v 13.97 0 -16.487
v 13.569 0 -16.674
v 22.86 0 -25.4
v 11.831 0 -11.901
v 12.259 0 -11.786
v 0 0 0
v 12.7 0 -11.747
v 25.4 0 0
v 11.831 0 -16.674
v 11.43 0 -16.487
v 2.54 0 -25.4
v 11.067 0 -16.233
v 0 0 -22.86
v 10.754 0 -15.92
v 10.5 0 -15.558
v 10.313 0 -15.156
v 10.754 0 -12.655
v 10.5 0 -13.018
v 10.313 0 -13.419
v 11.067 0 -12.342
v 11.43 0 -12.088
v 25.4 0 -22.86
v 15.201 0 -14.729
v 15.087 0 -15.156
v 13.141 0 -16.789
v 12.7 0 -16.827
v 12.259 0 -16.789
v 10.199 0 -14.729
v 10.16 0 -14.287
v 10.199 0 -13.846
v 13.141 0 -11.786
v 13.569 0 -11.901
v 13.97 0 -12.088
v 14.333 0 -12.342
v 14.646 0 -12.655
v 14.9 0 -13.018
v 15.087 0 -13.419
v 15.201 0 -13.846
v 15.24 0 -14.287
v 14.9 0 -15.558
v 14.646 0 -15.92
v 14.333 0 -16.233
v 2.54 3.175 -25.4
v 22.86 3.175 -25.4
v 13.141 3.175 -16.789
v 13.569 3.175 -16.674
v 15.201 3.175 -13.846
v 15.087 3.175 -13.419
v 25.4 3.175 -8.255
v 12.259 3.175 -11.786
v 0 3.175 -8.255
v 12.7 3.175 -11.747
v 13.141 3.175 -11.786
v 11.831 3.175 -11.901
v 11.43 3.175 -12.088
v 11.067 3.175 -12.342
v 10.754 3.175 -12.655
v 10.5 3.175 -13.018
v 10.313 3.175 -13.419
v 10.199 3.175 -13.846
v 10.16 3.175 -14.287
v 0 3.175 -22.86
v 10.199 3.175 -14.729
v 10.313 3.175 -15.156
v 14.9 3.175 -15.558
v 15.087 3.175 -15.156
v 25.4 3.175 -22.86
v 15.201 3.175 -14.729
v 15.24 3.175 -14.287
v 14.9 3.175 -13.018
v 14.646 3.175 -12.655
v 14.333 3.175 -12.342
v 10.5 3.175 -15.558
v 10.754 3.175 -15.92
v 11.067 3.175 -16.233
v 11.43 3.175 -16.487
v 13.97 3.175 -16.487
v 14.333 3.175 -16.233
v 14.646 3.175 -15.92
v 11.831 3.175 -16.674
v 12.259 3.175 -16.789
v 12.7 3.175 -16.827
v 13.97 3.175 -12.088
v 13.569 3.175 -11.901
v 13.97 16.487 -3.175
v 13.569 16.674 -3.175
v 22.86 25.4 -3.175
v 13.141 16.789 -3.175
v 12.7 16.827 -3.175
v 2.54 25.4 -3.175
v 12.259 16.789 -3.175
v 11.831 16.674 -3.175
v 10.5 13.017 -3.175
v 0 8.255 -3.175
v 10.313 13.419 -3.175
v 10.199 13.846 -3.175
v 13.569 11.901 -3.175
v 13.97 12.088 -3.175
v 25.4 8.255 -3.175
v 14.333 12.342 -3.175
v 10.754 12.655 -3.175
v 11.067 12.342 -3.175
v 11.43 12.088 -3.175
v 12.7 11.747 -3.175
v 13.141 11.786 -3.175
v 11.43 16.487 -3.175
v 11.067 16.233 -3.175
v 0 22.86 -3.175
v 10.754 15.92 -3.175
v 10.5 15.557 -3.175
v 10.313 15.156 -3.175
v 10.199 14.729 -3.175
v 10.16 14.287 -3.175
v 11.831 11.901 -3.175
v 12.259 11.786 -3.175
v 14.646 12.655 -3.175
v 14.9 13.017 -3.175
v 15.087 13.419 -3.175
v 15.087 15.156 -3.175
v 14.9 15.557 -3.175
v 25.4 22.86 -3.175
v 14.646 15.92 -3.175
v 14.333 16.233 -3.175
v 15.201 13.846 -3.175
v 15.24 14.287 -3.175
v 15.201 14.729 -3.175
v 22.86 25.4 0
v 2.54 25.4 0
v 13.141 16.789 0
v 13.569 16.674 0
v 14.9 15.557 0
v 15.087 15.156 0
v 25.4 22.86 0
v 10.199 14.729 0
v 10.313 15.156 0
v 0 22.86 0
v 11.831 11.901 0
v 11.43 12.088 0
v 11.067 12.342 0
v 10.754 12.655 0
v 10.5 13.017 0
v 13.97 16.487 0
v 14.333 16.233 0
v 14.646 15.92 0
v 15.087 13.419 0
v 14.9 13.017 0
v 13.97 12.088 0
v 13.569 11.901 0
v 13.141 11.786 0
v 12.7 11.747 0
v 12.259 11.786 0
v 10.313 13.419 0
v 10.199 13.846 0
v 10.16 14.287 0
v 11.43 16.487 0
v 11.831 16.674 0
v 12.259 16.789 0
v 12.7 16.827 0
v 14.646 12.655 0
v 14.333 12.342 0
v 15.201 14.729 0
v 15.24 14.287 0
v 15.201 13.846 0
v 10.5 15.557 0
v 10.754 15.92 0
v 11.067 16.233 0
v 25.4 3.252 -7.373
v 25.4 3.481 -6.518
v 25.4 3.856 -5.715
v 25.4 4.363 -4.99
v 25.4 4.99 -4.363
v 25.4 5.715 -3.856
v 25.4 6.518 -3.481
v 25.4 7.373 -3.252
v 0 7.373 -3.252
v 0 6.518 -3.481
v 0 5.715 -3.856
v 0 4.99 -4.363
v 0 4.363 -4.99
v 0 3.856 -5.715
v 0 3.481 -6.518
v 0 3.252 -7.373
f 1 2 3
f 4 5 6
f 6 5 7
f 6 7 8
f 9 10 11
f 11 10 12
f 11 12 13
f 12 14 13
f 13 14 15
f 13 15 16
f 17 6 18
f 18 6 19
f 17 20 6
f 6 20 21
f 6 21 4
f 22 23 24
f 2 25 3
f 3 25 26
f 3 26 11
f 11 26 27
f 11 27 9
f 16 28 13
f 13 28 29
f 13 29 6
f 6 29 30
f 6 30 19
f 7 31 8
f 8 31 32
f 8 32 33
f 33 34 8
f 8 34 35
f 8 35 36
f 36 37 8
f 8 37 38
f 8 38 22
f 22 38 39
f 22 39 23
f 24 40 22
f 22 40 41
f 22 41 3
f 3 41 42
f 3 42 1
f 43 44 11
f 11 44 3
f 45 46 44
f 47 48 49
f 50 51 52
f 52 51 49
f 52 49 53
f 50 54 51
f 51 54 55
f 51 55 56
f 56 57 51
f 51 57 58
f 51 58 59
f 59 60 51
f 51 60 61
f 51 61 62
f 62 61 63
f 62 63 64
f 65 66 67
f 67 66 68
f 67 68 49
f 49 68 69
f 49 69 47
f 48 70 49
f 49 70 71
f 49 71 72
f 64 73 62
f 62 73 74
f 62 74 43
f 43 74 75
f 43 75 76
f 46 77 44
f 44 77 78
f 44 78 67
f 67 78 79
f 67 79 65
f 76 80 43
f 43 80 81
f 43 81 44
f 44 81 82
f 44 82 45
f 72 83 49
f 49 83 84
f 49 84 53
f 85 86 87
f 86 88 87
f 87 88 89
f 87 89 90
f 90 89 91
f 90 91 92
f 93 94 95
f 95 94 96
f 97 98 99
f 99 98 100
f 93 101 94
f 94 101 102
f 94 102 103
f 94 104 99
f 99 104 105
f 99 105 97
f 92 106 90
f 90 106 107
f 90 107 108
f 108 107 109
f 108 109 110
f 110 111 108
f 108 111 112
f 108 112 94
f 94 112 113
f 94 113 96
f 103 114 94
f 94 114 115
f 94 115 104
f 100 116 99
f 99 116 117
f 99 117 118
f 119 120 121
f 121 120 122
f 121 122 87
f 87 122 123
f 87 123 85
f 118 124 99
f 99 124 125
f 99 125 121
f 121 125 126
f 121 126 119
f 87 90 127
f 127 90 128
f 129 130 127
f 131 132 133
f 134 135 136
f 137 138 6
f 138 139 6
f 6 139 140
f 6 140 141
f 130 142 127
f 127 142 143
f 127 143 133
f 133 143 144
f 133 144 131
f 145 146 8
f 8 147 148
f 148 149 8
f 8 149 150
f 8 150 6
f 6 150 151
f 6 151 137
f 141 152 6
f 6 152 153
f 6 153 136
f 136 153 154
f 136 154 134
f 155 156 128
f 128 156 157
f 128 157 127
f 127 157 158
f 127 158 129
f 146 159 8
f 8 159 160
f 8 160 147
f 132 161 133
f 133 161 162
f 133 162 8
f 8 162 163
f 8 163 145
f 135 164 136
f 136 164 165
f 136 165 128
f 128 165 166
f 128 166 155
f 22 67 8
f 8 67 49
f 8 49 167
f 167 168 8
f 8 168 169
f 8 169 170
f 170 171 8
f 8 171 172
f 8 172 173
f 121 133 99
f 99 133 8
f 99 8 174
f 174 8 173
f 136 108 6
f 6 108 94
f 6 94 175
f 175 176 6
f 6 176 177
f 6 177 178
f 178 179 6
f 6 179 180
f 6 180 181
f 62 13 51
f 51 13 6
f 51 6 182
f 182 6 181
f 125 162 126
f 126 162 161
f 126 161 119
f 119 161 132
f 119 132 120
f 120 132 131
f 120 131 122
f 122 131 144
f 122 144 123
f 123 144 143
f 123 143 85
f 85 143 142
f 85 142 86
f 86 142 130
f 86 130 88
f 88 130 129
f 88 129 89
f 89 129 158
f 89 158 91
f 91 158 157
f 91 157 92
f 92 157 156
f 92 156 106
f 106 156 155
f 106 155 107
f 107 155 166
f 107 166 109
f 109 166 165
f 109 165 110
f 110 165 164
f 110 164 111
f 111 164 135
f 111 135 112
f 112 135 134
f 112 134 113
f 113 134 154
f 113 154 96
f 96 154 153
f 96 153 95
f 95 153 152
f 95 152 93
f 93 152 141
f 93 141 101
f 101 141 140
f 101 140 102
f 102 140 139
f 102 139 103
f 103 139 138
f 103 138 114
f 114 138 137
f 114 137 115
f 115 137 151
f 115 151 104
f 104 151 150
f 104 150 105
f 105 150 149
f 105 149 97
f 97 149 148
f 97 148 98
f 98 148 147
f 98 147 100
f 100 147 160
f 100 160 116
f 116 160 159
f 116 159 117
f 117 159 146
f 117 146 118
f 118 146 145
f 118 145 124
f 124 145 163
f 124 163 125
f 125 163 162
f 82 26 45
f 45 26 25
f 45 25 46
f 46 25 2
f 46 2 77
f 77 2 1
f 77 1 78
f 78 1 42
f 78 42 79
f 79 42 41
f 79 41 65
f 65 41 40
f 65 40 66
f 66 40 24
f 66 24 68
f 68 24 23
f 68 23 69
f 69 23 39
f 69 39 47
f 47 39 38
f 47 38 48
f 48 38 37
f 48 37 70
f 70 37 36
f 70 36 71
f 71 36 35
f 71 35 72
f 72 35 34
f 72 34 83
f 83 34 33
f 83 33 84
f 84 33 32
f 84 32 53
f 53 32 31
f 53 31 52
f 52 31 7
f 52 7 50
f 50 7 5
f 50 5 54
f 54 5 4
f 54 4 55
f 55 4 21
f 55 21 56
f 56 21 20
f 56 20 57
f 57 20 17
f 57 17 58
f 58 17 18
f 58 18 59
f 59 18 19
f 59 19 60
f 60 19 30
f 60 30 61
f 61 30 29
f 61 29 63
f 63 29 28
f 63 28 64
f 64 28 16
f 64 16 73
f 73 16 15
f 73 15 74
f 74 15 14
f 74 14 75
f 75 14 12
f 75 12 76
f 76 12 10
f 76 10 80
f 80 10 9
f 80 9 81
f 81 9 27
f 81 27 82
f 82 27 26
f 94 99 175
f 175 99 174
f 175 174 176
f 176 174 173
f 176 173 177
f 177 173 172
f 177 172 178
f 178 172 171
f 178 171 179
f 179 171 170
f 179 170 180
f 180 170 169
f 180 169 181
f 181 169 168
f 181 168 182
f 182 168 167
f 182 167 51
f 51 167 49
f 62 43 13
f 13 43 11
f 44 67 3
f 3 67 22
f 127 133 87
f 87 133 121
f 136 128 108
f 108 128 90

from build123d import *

# Parameters (mm, degrees)
BOSS_EXTRUDE1_DEPTH = 25.4
SKETCH2_R           = 2.54
CUT_EXTRUDE1_DEPTH  = 44.994090512
SKETCH3_R           = 2.54
CUT_EXTRUDE2_DEPTH  = 44.994090512
FILLET1_R           = 5.08
CHAMFER1_SIZE       = 2.54


with BuildPart() as part:
    # Sketch1 → Boss-Extrude1 (new body)
    with BuildSketch(Plane(origin=(0, 0, 0), x_dir=(0, 0, -1), z_dir=(1, 0, 0))):
        Polygon((0, 0), (0, 25.4), (3.175, 25.4), (3.175, 3.175), (25.4, 3.175), (25.4, 0), align=None)
    extrude(amount=BOSS_EXTRUDE1_DEPTH)

    # Sketch2 → Cut-Extrude1 (cut, through all)
    with BuildSketch(Plane.XY):
        with Locations((12.7, 14.2875)):
            Circle(SKETCH2_R)
    extrude(amount=-CUT_EXTRUDE1_DEPTH, mode=Mode.SUBTRACT)

    # Sketch3 → Cut-Extrude2 (cut, through all)
    with BuildSketch(Plane.XZ):
        with Locations(Location((12.7, -14.2875, 0), (0, 0, 270))):
            Circle(SKETCH3_R)
    extrude(amount=-CUT_EXTRUDE2_DEPTH, mode=Mode.SUBTRACT)

    # Fillet1
    fillet1_edges = [part.edges().sort_by_distance(p)[0] for p in [
        (12.7, 3.175, -3.175),
    ]]
    fillet(fillet1_edges, radius=FILLET1_R)

    # Chamfer1
    chamfer1_edges = [part.edges().sort_by_distance(p)[0] for p in [
        (25.4, 25.4, -1.5875),
        (0, 25.4, -1.5875),
        (0, 1.5875, -25.4),
        (25.4, 1.5875, -25.4),
    ]]
    chamfer(chamfer1_edges, length=CHAMFER1_SIZE)


solid = part.part
